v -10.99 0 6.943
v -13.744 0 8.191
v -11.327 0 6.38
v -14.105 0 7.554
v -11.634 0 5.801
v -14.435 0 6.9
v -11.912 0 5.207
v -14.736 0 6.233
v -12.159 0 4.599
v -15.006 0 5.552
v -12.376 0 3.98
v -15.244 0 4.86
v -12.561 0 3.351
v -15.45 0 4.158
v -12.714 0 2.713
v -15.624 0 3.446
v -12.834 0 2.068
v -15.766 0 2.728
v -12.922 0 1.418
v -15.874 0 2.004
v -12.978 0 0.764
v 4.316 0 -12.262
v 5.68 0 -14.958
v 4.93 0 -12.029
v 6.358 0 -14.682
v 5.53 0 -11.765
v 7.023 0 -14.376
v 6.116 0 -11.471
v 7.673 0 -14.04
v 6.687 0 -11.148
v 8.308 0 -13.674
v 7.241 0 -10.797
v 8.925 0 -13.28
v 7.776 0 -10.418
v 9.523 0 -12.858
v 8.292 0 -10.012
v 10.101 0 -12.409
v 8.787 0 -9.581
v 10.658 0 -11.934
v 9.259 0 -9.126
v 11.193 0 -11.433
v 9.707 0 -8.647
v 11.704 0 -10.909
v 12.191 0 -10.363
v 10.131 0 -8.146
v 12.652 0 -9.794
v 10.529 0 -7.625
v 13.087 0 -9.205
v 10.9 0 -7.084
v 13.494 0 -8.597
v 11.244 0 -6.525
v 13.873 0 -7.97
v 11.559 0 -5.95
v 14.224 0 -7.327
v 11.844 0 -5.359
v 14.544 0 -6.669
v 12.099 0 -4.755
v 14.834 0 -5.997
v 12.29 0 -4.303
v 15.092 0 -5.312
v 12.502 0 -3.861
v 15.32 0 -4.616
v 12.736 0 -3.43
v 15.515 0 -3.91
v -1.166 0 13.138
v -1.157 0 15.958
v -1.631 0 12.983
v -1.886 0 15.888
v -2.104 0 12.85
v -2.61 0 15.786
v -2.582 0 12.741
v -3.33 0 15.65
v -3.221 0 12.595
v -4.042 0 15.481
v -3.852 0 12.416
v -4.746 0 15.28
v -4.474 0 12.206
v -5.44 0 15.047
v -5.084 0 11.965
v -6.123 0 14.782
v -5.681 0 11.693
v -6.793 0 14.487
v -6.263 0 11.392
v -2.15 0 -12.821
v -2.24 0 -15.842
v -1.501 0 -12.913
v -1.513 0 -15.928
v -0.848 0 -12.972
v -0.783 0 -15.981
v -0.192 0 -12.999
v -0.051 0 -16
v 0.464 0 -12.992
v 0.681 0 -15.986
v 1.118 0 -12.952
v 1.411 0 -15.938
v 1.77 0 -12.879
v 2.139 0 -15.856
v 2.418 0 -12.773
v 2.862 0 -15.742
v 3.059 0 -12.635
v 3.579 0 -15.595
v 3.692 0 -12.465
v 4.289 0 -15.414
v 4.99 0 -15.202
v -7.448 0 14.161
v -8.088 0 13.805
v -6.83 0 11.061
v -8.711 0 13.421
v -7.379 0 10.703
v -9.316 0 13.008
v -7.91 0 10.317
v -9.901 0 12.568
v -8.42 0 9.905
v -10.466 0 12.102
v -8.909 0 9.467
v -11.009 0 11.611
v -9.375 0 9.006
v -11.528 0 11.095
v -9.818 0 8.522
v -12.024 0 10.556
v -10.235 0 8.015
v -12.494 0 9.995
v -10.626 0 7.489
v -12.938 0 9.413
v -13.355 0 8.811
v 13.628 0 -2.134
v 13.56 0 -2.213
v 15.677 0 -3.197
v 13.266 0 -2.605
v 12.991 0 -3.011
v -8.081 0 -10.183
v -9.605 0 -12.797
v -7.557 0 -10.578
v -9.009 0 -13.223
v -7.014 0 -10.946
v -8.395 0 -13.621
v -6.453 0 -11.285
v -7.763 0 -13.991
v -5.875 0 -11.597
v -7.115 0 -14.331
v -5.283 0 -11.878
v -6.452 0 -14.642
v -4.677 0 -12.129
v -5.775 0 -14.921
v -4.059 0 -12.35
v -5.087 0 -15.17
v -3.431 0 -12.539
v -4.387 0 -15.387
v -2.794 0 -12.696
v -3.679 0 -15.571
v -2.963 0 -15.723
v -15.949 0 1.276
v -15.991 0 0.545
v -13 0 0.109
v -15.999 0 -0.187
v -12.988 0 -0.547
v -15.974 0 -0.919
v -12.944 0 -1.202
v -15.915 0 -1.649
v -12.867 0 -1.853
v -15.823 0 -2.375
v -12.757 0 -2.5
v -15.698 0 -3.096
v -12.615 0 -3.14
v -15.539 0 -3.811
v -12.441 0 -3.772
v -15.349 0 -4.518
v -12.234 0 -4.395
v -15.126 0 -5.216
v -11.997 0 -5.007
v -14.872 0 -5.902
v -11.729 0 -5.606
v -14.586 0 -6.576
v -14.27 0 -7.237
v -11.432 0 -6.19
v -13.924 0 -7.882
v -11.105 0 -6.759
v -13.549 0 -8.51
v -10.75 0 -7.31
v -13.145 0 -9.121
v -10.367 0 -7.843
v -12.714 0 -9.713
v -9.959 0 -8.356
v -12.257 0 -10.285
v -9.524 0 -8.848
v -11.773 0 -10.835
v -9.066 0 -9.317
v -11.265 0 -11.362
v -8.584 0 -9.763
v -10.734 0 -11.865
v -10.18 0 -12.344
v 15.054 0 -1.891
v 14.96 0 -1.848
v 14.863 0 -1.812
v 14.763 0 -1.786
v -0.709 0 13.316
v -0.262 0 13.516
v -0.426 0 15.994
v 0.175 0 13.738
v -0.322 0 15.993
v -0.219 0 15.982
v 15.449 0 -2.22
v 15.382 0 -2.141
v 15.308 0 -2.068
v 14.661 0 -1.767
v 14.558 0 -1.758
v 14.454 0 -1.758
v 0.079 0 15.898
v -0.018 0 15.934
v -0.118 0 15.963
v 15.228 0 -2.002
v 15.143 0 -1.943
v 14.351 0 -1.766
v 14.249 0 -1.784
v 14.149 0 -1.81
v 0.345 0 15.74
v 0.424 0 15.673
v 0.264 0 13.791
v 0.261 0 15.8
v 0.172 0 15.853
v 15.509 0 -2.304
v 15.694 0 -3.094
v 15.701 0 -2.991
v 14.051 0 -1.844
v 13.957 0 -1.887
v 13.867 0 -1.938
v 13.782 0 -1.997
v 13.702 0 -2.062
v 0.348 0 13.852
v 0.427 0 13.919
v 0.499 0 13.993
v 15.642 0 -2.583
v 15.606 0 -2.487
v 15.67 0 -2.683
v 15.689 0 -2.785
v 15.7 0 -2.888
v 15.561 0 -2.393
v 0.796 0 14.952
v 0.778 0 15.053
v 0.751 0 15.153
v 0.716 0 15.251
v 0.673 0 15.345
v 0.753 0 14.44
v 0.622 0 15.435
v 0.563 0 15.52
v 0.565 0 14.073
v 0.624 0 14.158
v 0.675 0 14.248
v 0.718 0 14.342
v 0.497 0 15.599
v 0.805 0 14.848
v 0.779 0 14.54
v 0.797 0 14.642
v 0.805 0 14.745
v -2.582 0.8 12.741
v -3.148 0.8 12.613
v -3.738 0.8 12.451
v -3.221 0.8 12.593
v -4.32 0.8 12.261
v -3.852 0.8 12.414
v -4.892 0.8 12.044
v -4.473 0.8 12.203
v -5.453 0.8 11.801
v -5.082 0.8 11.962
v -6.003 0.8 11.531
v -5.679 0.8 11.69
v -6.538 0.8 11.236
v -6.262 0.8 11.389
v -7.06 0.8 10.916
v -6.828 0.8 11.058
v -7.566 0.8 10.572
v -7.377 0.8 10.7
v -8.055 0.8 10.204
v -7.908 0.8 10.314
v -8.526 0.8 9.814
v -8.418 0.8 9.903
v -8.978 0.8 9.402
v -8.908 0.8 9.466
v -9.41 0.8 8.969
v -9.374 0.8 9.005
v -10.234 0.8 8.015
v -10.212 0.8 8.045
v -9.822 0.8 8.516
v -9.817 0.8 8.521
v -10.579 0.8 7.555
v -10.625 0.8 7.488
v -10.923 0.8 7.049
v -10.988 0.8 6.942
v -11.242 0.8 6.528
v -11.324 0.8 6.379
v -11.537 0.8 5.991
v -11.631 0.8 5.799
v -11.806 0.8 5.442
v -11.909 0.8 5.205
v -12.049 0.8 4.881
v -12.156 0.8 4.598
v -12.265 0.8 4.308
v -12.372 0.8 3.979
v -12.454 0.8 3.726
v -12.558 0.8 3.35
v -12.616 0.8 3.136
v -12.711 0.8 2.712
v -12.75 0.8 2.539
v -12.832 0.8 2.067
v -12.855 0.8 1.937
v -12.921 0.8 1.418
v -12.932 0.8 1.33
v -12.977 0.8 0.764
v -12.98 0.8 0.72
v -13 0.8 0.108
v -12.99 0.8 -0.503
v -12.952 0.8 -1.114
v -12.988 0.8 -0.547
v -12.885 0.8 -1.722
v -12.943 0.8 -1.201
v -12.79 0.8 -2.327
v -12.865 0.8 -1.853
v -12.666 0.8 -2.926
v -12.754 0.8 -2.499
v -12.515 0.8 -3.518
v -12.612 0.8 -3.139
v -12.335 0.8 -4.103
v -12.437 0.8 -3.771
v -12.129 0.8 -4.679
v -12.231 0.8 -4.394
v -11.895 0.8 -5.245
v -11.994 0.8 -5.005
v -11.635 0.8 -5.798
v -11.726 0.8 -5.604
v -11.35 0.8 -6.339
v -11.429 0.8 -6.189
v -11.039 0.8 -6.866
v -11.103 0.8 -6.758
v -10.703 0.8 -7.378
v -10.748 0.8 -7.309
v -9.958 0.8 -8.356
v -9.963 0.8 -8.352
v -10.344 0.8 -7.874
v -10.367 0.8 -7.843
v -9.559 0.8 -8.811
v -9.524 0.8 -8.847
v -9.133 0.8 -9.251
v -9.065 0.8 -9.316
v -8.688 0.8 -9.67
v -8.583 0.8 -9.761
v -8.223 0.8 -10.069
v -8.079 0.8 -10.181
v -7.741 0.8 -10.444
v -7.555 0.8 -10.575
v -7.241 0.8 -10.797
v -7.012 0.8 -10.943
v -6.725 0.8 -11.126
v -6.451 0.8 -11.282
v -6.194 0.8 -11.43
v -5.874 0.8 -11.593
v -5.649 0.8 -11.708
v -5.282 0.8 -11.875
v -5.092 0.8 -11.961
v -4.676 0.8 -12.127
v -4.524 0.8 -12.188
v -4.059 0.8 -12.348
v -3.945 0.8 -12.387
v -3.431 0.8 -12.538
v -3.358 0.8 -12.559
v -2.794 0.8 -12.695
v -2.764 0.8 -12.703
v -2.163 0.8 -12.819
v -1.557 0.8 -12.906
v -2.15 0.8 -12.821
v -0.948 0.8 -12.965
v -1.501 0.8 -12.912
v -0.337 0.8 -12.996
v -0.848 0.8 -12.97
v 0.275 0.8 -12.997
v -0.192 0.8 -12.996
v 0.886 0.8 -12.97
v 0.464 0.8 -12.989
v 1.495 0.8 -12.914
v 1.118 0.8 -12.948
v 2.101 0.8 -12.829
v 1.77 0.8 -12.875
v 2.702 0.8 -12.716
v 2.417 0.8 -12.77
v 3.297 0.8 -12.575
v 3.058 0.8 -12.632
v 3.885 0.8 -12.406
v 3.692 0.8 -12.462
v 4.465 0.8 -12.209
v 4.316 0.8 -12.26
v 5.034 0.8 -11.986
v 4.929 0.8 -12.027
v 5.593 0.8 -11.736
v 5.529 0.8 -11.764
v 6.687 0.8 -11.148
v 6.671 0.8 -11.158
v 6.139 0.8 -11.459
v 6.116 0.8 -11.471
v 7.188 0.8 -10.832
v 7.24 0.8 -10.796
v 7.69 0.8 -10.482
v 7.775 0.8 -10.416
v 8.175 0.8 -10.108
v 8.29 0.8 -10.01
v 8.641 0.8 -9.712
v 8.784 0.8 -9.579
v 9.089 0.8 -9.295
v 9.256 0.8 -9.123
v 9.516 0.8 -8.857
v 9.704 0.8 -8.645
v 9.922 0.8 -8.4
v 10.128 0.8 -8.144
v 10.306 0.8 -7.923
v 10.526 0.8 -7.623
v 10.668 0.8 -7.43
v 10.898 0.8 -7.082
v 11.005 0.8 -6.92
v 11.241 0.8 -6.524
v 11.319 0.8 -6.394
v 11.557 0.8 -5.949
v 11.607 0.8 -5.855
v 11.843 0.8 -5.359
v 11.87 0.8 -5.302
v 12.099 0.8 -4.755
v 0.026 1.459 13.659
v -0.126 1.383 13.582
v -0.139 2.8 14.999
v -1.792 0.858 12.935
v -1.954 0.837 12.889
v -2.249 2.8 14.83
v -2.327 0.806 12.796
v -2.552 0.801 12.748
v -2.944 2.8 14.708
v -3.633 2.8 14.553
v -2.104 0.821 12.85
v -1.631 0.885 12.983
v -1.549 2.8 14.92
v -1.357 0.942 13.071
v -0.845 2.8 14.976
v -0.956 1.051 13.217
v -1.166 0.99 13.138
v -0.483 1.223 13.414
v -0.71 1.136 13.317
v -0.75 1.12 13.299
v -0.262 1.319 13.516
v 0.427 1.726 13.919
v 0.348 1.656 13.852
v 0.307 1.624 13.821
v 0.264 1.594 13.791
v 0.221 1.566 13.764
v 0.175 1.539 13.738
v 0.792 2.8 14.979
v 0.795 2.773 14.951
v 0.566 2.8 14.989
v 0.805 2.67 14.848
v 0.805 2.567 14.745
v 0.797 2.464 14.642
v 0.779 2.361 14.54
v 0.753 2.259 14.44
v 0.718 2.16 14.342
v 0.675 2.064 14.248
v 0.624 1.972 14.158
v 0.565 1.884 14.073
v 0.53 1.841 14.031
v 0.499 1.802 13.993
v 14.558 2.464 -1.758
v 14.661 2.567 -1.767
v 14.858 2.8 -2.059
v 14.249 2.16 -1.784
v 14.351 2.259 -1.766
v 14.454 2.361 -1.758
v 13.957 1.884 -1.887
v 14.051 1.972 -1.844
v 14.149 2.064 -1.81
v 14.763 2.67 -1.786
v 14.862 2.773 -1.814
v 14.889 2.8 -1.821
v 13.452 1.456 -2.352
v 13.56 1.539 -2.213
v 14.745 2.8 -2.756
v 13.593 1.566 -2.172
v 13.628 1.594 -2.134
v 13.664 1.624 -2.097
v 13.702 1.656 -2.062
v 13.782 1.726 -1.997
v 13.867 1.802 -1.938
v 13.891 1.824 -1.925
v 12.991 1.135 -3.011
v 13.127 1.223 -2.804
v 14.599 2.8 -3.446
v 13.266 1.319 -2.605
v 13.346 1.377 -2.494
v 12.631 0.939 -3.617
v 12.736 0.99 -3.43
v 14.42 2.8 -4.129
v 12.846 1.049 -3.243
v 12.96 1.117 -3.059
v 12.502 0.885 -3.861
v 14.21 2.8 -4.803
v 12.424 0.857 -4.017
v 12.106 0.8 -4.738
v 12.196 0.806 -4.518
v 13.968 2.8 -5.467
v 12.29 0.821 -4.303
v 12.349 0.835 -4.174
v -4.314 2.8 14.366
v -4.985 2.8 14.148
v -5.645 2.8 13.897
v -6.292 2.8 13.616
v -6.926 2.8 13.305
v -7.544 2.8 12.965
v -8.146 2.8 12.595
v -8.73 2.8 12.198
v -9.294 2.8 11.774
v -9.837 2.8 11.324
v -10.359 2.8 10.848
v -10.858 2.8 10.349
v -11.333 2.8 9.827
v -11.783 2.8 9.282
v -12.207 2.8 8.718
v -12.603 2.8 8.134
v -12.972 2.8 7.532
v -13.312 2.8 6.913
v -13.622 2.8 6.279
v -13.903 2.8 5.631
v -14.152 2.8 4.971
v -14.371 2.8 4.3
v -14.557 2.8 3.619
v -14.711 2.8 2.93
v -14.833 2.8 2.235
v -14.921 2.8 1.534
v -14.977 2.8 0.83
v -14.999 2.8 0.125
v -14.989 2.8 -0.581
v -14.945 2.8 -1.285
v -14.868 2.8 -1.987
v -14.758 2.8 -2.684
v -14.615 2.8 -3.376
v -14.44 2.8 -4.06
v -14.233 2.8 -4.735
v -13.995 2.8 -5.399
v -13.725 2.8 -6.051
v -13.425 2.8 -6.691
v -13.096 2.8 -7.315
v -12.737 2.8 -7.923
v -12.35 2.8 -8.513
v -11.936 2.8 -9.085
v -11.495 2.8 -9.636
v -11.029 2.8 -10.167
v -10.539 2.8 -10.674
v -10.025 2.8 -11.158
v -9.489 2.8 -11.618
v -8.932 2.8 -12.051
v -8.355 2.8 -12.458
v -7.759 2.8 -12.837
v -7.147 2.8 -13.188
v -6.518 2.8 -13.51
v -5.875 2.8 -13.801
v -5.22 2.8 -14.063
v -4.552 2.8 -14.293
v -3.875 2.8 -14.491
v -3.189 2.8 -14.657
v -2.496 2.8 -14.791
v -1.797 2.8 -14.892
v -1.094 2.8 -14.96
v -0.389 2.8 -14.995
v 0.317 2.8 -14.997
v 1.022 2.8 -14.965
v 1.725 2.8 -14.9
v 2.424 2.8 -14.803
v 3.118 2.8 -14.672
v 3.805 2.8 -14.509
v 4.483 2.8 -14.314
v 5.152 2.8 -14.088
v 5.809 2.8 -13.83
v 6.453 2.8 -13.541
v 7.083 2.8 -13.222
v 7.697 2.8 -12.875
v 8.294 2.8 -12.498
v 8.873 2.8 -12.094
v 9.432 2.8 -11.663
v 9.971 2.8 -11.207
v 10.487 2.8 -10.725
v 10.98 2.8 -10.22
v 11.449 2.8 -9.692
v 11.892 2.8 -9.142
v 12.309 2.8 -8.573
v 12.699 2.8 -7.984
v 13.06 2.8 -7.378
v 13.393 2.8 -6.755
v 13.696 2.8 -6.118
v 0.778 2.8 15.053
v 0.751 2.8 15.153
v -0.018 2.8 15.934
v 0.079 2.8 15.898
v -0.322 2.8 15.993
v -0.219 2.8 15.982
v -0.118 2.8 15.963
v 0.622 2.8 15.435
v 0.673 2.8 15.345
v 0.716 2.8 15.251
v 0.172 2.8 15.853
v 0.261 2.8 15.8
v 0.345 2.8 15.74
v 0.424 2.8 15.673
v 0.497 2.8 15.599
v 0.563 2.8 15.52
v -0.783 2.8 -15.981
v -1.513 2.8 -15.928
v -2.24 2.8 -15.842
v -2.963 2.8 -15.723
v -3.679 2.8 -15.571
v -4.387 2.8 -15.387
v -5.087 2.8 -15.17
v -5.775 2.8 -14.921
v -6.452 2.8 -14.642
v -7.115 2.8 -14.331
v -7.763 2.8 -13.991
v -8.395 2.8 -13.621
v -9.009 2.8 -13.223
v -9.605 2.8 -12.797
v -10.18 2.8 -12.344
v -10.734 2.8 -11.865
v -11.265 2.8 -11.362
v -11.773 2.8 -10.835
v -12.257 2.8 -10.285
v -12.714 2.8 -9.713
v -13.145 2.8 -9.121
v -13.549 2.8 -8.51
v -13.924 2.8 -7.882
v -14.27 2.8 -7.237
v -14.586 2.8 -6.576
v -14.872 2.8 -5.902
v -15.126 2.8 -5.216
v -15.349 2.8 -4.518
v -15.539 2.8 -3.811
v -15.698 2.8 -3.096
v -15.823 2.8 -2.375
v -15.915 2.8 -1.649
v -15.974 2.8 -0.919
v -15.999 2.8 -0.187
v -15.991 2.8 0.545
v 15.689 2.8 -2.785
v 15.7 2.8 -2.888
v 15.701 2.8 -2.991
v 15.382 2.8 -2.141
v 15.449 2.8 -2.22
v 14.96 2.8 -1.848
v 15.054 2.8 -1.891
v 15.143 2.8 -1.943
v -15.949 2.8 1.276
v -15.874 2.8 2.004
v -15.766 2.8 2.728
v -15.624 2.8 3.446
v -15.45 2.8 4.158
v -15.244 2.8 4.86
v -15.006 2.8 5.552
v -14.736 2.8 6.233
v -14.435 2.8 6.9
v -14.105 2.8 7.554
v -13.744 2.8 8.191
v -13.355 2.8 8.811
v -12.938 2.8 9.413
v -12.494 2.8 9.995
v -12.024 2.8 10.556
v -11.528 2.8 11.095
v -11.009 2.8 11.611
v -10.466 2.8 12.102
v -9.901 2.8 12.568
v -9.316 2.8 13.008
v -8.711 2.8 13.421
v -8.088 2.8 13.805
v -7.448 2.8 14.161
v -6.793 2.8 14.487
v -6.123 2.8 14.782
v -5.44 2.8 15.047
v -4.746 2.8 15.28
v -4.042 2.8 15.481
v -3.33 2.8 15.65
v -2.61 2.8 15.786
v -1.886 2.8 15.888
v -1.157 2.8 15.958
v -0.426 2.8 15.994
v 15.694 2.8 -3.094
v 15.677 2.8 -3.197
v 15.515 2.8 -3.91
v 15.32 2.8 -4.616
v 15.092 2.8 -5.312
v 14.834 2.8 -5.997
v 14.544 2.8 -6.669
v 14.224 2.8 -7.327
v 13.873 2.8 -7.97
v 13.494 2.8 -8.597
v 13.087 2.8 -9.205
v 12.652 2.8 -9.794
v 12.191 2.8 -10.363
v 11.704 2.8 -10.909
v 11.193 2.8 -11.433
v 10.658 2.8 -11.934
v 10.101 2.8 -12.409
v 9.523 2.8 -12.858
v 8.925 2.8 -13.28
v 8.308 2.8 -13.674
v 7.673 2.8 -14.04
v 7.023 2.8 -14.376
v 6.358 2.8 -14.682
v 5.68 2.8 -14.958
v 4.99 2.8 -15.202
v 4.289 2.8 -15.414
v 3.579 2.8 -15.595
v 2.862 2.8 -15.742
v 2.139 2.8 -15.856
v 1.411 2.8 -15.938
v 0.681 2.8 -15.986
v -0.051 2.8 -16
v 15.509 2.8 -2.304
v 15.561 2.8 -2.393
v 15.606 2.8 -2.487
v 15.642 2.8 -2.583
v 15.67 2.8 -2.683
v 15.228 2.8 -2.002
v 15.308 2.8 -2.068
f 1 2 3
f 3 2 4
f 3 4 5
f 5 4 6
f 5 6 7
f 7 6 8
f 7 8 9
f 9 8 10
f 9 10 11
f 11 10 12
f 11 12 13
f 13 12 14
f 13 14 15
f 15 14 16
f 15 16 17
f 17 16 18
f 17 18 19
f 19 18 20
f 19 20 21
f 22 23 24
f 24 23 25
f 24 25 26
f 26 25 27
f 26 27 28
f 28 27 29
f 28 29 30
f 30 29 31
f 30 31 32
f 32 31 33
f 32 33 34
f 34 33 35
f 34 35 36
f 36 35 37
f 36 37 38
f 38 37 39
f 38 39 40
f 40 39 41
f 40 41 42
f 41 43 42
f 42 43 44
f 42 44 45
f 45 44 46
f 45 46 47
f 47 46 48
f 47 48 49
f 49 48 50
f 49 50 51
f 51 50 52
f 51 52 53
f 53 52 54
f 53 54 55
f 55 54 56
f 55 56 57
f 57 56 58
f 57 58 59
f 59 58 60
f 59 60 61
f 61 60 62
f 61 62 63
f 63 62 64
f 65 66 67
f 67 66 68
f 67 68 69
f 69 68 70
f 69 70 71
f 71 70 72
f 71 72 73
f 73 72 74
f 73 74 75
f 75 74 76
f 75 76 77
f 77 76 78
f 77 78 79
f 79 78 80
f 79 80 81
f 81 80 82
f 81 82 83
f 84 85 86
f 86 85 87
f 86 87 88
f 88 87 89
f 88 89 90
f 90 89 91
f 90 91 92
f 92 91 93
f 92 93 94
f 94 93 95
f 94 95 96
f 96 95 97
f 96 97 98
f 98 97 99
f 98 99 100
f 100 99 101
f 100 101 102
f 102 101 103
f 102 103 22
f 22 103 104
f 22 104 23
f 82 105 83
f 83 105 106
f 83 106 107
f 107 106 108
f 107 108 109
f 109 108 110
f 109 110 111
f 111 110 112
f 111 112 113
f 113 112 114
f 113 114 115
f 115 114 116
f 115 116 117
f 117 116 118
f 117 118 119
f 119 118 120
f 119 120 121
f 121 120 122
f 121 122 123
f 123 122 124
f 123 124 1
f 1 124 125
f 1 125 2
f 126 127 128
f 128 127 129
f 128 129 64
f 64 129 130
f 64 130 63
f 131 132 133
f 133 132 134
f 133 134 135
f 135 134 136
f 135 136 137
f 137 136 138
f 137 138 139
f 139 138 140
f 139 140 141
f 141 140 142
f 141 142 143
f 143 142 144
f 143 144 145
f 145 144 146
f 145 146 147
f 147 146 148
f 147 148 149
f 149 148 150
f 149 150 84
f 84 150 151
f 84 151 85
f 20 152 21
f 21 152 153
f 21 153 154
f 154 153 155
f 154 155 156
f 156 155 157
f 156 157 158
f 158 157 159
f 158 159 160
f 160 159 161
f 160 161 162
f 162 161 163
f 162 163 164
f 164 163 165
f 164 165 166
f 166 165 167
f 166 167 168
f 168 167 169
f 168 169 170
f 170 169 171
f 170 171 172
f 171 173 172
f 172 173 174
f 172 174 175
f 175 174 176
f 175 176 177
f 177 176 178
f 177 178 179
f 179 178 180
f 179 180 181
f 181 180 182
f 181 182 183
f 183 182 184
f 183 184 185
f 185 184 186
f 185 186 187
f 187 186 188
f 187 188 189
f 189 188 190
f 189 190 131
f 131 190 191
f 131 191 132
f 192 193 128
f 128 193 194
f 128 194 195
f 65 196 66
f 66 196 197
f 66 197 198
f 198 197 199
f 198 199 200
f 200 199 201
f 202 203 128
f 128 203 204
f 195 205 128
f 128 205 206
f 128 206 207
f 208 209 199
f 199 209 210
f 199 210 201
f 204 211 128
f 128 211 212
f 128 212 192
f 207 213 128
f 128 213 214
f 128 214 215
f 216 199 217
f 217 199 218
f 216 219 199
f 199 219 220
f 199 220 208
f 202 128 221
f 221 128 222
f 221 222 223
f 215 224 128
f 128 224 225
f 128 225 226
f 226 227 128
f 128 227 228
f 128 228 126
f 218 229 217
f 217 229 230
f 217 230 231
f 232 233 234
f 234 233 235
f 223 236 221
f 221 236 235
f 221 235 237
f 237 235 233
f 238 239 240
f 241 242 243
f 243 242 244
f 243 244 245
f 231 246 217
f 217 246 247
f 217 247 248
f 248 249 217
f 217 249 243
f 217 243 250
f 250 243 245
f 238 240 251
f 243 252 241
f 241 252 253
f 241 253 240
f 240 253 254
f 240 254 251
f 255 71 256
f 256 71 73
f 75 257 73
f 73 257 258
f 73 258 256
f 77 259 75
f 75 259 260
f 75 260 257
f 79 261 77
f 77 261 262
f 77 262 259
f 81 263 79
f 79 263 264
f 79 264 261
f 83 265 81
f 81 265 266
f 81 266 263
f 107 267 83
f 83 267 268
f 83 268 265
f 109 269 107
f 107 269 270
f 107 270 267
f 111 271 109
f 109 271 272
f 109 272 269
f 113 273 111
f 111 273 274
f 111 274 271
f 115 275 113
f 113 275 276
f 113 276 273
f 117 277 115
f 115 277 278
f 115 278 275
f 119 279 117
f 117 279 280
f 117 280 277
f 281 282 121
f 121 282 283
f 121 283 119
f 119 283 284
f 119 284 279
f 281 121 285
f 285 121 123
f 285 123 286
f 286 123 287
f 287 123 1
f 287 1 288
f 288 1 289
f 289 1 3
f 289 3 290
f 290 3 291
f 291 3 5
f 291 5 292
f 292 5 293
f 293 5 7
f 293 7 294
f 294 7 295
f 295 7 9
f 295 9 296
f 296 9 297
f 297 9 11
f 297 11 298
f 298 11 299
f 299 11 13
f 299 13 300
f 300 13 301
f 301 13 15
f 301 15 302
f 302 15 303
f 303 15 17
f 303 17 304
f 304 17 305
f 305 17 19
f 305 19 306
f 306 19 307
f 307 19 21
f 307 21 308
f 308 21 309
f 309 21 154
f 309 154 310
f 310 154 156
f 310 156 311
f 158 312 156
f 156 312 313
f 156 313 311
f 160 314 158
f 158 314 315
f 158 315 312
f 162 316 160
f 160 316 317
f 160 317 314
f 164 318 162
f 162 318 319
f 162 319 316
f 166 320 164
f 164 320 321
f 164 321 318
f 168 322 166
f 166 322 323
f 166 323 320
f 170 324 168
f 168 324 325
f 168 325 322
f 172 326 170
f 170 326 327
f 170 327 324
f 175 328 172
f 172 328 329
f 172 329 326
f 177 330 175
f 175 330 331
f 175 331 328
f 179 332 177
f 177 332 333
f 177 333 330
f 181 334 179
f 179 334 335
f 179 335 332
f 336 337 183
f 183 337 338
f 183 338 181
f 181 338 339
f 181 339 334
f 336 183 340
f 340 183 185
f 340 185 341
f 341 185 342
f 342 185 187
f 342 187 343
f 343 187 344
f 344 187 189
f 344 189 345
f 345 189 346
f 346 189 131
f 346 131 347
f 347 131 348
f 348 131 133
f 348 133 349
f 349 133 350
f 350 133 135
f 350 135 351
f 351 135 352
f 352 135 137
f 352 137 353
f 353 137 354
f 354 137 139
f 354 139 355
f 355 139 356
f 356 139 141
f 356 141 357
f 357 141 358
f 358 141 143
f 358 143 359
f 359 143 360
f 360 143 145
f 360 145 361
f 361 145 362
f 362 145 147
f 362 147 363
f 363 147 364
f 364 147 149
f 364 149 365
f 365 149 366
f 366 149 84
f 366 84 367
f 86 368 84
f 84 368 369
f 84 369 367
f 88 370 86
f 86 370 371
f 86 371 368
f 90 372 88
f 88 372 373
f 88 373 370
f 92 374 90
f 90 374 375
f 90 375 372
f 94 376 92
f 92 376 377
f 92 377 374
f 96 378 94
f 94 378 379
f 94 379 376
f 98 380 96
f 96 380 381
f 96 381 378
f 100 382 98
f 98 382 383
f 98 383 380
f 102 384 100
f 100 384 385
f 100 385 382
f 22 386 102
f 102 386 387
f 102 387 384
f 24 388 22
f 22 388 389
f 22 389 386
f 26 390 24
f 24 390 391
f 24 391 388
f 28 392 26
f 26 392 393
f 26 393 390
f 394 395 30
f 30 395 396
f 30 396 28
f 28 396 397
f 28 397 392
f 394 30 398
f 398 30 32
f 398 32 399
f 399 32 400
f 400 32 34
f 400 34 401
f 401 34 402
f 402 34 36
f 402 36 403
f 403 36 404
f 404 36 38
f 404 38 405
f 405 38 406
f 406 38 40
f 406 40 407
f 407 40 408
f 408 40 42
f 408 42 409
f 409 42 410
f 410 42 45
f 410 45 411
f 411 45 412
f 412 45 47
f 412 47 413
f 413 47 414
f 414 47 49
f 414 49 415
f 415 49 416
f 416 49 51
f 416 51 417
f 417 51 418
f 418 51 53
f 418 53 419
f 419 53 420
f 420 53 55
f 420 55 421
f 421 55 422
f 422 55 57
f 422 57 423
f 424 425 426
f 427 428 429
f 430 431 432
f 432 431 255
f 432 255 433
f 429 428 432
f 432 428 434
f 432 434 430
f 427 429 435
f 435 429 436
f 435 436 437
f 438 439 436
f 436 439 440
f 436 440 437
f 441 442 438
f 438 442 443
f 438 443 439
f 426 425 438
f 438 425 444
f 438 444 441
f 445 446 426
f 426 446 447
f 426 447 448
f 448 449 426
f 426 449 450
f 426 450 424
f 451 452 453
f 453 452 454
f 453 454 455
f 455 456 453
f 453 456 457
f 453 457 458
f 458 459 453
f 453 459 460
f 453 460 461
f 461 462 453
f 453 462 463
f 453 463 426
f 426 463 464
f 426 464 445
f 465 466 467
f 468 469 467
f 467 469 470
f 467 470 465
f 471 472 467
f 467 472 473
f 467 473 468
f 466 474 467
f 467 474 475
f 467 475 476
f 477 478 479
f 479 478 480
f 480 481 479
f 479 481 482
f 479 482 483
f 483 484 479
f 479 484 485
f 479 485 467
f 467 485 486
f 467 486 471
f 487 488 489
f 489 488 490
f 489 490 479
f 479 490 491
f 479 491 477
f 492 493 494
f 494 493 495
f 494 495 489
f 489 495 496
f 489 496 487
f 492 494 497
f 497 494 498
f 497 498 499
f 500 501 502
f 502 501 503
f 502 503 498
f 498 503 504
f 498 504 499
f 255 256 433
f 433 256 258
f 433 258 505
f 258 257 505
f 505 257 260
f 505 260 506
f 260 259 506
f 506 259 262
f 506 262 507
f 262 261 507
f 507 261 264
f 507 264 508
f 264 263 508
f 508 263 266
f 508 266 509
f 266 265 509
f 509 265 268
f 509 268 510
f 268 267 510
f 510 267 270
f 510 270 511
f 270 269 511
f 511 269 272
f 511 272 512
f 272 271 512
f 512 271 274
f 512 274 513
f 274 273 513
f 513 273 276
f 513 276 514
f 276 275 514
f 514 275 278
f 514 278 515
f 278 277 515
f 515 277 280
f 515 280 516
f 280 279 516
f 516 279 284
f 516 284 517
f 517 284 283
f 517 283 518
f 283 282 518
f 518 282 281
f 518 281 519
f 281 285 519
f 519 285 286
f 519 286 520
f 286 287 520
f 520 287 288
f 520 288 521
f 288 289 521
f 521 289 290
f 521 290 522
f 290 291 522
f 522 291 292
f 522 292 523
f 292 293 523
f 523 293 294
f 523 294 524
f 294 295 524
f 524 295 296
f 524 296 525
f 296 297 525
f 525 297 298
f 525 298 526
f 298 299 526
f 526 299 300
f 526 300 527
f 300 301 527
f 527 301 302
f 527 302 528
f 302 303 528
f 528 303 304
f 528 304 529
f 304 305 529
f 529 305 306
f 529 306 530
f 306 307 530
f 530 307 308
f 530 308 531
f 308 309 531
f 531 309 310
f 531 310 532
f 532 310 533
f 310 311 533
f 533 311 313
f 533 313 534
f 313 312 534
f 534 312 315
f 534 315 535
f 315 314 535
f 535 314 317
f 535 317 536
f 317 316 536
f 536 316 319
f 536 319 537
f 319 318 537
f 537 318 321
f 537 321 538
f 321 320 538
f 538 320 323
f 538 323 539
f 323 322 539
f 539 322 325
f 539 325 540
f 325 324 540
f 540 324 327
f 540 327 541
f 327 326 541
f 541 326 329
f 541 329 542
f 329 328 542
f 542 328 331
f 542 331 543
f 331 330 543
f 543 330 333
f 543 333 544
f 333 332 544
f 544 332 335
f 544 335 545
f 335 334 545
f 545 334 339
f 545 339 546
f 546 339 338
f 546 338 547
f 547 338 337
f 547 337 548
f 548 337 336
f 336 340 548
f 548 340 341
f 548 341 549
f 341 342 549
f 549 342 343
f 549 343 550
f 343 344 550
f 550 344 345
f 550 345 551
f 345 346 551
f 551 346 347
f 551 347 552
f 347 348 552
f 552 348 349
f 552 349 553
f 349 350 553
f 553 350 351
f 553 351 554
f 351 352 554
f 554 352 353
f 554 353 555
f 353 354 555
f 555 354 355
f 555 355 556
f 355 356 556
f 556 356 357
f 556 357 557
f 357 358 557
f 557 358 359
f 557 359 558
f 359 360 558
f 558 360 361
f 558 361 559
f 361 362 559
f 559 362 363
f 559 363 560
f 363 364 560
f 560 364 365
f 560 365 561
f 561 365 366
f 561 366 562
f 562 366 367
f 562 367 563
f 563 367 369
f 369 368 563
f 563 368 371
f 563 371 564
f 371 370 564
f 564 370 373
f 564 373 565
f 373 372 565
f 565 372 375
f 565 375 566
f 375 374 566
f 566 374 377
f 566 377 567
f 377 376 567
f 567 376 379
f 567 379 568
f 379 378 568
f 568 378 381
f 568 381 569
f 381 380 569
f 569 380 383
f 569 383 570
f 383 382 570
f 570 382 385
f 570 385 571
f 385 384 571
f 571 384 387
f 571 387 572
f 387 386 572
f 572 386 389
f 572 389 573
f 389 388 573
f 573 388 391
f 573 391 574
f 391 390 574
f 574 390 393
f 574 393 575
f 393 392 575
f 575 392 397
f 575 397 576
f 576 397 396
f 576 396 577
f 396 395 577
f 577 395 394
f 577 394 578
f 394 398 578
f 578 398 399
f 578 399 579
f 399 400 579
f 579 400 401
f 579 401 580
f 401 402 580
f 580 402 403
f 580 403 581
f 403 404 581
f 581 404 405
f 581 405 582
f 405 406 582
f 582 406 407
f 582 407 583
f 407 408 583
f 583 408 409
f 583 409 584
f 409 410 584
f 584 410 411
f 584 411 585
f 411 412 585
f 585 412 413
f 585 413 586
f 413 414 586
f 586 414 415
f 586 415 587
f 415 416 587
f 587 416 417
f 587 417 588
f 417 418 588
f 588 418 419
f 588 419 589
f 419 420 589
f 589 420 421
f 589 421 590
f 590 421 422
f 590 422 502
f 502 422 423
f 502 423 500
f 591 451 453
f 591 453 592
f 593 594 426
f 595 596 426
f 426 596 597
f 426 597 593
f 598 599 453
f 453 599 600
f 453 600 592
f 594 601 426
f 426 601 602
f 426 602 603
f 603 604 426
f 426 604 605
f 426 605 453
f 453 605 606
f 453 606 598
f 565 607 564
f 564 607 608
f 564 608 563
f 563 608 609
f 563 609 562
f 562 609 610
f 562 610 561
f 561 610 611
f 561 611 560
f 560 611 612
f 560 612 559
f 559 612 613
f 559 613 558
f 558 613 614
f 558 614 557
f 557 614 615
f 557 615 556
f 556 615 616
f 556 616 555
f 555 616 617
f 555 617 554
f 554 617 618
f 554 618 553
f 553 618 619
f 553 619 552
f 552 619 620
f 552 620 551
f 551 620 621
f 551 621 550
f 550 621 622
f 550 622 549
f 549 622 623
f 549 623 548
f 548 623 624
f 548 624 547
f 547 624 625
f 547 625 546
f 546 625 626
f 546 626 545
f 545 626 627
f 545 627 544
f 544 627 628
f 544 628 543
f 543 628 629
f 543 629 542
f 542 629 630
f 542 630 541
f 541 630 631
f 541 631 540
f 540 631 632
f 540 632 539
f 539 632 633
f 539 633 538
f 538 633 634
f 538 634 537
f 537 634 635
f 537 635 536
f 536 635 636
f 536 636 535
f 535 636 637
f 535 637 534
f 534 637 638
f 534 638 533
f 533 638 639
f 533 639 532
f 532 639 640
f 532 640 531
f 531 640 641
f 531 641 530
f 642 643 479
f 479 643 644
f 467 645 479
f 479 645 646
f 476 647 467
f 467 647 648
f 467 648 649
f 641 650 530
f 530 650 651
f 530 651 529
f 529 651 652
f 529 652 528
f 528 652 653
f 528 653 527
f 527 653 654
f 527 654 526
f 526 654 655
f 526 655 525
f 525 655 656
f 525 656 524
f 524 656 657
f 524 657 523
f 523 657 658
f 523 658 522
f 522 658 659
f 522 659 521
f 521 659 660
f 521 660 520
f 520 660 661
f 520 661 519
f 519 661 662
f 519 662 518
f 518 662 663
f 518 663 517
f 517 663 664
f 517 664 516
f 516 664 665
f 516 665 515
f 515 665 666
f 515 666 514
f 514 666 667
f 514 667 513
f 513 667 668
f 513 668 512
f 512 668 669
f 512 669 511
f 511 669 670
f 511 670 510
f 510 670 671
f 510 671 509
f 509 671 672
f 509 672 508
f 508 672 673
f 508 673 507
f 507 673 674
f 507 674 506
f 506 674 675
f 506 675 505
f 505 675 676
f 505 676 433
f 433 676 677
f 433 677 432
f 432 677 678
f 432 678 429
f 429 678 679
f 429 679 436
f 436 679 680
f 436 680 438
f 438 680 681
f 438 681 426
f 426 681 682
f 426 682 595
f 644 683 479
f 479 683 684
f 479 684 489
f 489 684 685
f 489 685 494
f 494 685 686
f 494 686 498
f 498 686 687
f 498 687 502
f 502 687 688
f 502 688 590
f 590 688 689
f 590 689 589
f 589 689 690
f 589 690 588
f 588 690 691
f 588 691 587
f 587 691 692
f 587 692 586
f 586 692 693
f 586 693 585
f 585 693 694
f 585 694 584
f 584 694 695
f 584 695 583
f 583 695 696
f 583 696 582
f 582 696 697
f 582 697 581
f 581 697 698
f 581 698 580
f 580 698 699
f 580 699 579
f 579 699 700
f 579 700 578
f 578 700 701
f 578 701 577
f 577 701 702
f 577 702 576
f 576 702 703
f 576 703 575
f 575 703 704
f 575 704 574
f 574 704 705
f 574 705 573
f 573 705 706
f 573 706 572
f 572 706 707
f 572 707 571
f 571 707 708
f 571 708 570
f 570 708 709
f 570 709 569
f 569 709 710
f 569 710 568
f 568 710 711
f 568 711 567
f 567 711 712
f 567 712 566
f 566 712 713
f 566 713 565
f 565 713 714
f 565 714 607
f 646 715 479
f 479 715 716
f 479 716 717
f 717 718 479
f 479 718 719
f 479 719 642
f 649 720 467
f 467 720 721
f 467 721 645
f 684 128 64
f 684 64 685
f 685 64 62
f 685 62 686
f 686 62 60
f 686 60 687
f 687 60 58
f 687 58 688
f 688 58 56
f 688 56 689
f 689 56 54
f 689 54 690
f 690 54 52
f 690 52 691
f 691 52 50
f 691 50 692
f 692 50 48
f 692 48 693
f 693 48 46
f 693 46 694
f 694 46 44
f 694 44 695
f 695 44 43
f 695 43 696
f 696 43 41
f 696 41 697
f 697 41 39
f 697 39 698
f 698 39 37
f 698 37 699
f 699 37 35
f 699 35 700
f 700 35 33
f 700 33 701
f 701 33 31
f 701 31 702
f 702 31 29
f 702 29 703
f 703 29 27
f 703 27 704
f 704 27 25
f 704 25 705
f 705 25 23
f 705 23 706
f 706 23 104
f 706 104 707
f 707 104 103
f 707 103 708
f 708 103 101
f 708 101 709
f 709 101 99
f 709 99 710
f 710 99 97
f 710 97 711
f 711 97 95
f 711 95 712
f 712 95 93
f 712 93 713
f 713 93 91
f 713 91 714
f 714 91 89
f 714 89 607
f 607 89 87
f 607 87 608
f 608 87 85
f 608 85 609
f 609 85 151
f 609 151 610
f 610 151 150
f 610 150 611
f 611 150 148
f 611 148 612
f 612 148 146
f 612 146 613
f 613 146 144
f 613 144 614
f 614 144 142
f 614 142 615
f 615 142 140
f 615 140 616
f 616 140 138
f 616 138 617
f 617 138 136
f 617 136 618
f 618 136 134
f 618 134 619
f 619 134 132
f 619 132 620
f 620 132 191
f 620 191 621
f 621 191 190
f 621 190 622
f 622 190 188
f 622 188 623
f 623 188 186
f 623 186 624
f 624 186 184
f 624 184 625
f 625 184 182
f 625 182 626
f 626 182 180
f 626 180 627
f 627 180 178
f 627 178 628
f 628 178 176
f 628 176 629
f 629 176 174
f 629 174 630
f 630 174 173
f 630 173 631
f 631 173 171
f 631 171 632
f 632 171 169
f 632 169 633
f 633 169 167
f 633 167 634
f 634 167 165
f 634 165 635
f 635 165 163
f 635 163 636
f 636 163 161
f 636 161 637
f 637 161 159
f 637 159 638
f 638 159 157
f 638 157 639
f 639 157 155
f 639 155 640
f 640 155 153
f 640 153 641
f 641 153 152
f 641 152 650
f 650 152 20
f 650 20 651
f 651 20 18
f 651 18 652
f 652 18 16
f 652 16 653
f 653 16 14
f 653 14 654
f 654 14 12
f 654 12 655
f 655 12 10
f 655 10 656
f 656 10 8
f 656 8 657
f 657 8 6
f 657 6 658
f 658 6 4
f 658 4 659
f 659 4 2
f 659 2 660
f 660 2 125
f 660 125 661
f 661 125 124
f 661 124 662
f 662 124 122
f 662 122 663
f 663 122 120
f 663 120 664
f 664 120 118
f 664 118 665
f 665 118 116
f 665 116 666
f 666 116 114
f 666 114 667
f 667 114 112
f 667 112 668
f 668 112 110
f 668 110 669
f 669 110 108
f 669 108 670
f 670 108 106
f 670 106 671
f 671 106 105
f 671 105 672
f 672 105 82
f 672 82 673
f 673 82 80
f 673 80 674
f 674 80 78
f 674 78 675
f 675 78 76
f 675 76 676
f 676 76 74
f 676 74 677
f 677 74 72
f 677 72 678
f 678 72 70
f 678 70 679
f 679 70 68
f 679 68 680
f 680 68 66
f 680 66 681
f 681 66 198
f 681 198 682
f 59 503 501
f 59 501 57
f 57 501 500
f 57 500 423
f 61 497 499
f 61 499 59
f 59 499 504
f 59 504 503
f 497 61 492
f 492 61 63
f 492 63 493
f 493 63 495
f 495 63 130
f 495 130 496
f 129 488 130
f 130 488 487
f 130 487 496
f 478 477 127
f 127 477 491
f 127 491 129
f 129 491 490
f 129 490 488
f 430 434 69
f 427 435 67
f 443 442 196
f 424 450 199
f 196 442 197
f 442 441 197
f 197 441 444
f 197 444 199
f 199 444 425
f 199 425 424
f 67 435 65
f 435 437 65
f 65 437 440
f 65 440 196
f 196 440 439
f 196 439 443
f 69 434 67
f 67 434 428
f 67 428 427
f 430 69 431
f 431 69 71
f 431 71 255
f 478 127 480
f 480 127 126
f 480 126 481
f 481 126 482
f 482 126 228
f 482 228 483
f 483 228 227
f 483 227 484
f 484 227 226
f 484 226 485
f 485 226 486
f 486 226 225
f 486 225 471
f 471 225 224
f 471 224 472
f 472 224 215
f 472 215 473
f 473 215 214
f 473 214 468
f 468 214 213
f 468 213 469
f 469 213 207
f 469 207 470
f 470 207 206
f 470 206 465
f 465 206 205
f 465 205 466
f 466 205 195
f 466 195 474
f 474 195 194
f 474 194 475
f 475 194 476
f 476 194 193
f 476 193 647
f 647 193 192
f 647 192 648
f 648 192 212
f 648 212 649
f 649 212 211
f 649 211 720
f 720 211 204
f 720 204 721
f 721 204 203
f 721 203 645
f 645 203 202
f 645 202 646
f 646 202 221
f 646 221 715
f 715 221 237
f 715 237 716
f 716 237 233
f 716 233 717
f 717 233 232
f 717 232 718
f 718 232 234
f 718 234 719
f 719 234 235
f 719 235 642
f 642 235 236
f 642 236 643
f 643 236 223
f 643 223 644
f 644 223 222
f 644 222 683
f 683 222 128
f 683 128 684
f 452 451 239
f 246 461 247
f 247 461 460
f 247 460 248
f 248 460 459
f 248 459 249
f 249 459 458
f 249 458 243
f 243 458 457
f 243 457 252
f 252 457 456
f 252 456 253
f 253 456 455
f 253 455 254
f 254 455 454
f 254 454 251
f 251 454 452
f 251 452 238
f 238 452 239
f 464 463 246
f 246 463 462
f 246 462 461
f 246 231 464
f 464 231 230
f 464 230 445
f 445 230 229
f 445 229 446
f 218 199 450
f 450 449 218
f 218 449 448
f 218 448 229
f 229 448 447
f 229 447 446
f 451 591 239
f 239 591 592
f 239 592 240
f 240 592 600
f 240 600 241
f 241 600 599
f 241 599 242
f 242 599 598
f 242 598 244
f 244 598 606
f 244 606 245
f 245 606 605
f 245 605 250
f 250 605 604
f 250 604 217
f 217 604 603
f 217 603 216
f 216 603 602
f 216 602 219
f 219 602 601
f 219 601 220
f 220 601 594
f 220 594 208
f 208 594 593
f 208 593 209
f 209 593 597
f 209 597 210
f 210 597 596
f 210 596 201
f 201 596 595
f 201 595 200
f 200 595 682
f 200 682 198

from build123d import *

# Parameters (mm, degrees)
REVOLVE1_ANGLE = 280
FILLET1_DEPTH  = 4
FILLET2_R      = 1.2


with BuildPart() as part:
    # Sketch1 → Revolve1 (revolve)
    with BuildSketch(Plane.XY):
        Polygon((13, 0), (13, 0.8), (15, 2.8), (16, 2.8), (16, 0), align=None)
    revolve(axis=Axis((0, 0, 0), (0, 1, 0)), revolution_arc=REVOLVE1_ANGLE)

    # Fillet1: read off the stored shape, not the designer's step
    # Fillet1 outline → Fillet1 (cut)
    with BuildSketch(Plane(origin=(0, 0, 0), x_dir=(1, 0, 0), z_dir=(0, 1, 0))):
        with BuildLine():
            Line((13, 0), (16, 0))
            ThreePointArc((16, 0), (13.674960129, 2.07014875), (12.099184783, 4.754968727))
            ThreePointArc((12.099184783, 4.754968727), (12.77281101, 2.419772492), (13, 0))
        make_face()
        with BuildLine():
            ThreePointArc((2.25742631, -12.802500789), (-0.165035355, -12.998952394), (-2.581728679, -12.741062633))
            ThreePointArc((-2.581728679, -12.741062633), (0.335933367, -13.826684315), (2.778370843, -15.756924048))
            Line((2.778370843, -15.756924048), (2.25742631, -12.802500789))
        make_face()
    extrude(amount=FILLET1_DEPTH, mode=Mode.SUBTRACT)

    # Fillet2
    fillet2_edges = [part.edges().sort_by_distance(p)[0] for p in [
        (16, 1.4, 0),
        (2.778370843, 1.4, 15.756924048),
    ]]
    fillet(fillet2_edges, radius=FILLET2_R)


solid = part.part
